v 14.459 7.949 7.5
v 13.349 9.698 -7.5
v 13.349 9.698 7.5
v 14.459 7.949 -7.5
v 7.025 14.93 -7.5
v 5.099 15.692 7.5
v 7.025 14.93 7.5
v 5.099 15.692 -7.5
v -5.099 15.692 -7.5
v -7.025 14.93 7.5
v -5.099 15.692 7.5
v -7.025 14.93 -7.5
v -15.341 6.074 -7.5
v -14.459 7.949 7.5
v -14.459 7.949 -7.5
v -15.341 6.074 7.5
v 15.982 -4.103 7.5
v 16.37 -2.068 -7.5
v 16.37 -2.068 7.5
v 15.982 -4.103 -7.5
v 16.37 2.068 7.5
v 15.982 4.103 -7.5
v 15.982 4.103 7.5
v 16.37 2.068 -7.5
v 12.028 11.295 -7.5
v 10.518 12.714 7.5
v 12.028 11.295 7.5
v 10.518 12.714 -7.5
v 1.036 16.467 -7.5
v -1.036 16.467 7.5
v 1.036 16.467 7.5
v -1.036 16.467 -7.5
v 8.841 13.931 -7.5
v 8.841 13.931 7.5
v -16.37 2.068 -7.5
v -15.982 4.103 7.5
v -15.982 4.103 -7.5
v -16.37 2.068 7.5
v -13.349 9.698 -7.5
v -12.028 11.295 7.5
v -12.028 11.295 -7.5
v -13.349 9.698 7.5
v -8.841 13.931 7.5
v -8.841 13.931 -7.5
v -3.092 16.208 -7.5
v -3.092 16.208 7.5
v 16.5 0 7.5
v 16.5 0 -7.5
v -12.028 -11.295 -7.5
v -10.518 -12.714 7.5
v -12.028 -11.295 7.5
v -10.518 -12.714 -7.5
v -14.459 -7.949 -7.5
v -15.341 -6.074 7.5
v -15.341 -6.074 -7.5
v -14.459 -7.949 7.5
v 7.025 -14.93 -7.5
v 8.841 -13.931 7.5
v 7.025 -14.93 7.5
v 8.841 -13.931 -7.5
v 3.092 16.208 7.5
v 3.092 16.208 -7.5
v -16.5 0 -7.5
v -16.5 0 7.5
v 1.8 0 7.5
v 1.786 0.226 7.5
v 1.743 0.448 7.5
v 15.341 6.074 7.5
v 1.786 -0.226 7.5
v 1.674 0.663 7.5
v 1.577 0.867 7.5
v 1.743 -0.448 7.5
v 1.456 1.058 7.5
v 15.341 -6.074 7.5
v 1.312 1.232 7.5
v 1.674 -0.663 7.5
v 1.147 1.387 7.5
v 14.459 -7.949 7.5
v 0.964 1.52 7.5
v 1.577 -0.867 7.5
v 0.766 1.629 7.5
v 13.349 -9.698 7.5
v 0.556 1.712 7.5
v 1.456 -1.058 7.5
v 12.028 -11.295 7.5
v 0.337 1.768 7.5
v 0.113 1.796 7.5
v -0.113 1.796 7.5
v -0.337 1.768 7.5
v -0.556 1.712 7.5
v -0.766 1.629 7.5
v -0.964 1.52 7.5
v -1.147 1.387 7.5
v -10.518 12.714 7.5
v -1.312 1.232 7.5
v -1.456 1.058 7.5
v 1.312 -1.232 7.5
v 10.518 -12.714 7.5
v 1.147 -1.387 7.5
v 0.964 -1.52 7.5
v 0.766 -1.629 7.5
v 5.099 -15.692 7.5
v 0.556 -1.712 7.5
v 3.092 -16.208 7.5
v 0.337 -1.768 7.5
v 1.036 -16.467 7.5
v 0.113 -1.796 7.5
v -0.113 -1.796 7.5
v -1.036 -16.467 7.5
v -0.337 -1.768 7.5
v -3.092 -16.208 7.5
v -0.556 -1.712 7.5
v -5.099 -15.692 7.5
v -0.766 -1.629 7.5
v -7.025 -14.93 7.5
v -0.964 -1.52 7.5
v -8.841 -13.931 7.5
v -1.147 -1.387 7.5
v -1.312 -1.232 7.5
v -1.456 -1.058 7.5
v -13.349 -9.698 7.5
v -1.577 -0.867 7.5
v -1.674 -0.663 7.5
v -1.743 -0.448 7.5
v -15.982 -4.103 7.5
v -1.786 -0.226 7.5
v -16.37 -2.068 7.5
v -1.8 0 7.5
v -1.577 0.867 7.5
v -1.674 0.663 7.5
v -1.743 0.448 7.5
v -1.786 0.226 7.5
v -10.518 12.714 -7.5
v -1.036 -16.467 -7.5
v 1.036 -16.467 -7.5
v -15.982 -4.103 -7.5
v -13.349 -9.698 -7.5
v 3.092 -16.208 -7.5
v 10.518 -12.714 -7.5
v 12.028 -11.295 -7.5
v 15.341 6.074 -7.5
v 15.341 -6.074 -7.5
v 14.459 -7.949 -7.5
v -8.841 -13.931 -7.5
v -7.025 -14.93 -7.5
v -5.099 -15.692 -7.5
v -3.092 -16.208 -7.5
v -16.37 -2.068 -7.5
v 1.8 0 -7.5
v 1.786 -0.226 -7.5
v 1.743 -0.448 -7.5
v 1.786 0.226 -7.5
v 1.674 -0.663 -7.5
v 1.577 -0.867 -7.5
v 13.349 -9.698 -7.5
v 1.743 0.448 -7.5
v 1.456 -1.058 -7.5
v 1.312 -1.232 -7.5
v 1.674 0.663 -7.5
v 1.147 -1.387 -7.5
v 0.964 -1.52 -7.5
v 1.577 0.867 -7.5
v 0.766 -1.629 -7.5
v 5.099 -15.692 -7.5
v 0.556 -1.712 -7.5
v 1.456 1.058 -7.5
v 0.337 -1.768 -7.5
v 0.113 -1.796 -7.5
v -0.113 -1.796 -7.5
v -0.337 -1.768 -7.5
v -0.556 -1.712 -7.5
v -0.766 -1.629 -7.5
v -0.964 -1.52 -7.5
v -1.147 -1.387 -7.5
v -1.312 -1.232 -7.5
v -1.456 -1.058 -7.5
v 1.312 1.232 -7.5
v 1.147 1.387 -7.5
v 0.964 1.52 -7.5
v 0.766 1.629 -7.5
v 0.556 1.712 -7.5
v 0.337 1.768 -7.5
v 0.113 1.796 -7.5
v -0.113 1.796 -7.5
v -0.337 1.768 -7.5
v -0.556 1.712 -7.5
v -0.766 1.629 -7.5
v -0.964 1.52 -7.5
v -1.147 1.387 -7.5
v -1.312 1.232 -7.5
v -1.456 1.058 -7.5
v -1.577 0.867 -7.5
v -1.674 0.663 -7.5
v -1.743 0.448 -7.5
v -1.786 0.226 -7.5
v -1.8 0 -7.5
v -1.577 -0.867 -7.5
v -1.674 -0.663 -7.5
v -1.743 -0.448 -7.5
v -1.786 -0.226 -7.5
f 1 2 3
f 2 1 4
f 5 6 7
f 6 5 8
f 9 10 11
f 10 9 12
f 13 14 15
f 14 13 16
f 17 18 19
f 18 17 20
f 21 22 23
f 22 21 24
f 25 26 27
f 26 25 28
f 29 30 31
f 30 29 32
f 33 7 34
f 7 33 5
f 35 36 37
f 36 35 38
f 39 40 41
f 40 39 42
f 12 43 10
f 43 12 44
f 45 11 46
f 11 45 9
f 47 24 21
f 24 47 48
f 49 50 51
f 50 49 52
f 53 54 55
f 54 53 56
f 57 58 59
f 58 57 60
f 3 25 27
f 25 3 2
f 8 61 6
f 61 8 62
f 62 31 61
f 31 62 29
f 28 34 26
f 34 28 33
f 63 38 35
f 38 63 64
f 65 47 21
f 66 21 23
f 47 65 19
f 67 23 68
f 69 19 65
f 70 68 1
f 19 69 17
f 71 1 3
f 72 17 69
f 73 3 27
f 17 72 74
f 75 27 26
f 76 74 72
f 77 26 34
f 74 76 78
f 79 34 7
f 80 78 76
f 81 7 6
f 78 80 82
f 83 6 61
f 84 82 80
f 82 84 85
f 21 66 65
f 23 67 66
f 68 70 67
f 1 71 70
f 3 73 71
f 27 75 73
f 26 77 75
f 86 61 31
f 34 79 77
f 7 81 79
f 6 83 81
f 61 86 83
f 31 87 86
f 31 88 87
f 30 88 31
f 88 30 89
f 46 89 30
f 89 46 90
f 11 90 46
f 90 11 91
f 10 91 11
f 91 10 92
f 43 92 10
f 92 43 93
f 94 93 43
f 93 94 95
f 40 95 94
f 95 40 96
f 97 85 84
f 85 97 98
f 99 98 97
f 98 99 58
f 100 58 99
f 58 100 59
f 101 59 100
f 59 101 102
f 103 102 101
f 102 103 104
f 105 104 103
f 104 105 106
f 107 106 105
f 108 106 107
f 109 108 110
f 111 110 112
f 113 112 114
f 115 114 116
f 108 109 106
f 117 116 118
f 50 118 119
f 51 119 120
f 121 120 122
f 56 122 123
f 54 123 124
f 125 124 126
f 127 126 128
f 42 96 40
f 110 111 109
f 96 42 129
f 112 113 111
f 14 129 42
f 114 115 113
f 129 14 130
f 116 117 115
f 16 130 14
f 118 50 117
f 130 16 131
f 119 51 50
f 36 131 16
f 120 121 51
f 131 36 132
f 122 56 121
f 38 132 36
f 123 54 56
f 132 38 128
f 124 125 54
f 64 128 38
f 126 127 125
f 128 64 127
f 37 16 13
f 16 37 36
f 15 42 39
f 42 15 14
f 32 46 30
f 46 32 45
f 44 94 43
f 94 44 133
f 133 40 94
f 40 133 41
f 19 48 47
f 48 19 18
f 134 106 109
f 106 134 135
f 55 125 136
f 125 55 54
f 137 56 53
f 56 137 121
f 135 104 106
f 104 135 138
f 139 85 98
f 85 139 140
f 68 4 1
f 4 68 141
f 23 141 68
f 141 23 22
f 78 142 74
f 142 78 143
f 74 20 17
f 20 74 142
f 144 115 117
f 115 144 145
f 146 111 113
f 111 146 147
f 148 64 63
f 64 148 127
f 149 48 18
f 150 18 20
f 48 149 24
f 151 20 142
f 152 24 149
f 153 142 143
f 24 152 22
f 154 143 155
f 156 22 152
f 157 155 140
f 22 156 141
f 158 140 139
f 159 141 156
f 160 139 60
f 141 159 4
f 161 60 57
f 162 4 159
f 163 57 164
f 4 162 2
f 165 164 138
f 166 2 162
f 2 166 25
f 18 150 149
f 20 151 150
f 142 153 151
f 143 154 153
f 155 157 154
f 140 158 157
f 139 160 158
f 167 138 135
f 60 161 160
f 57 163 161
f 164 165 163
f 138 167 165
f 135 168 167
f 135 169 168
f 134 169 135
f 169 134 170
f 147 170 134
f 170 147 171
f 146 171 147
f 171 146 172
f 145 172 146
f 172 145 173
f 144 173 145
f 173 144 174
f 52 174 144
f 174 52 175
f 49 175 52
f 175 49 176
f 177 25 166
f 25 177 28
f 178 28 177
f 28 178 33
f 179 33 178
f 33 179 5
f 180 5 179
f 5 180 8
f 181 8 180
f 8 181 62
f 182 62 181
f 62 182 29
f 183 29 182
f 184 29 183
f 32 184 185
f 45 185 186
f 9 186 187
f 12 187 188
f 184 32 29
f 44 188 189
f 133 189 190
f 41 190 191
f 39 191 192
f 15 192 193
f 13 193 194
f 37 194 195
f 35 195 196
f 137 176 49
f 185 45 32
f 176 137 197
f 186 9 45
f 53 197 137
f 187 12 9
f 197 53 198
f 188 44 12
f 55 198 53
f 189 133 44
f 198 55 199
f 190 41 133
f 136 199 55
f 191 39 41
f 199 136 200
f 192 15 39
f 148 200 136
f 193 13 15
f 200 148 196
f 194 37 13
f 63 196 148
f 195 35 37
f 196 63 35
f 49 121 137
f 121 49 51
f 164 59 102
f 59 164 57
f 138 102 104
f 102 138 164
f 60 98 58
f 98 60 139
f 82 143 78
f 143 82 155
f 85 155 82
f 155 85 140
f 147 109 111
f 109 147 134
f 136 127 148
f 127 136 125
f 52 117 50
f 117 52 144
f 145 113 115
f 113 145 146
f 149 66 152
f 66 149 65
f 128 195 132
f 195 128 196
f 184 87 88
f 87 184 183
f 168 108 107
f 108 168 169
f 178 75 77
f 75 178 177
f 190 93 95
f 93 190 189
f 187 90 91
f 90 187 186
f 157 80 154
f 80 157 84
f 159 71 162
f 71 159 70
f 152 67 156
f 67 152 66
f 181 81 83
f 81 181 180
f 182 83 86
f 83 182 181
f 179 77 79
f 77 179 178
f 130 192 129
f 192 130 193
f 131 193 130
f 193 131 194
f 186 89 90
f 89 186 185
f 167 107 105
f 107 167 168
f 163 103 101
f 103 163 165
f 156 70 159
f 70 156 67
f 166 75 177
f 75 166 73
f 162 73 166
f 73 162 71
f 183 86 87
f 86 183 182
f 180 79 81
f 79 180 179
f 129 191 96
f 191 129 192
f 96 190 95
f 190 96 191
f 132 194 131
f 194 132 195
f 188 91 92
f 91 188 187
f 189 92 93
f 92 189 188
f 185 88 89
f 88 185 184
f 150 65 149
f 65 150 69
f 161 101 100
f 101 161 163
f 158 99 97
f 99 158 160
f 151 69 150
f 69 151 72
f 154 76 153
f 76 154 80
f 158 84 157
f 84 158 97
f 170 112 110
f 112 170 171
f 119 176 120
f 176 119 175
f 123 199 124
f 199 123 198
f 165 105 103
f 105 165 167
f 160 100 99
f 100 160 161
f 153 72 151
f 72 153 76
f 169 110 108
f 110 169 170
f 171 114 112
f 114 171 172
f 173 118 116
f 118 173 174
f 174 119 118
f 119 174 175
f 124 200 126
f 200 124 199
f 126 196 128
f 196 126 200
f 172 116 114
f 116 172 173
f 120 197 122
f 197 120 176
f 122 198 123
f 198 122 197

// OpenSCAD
$fn = 50;


difference() {
	union() {
		translate(v = [0, 0, -7.5000000000]) {
			cylinder(h = 15, r = 16.5000000000);
		}
	}
	union() {
		translate(v = [0, 0, -100.0000000000]) {
			cylinder(h = 200, r = 1.8000000000);
		}
	}
}
